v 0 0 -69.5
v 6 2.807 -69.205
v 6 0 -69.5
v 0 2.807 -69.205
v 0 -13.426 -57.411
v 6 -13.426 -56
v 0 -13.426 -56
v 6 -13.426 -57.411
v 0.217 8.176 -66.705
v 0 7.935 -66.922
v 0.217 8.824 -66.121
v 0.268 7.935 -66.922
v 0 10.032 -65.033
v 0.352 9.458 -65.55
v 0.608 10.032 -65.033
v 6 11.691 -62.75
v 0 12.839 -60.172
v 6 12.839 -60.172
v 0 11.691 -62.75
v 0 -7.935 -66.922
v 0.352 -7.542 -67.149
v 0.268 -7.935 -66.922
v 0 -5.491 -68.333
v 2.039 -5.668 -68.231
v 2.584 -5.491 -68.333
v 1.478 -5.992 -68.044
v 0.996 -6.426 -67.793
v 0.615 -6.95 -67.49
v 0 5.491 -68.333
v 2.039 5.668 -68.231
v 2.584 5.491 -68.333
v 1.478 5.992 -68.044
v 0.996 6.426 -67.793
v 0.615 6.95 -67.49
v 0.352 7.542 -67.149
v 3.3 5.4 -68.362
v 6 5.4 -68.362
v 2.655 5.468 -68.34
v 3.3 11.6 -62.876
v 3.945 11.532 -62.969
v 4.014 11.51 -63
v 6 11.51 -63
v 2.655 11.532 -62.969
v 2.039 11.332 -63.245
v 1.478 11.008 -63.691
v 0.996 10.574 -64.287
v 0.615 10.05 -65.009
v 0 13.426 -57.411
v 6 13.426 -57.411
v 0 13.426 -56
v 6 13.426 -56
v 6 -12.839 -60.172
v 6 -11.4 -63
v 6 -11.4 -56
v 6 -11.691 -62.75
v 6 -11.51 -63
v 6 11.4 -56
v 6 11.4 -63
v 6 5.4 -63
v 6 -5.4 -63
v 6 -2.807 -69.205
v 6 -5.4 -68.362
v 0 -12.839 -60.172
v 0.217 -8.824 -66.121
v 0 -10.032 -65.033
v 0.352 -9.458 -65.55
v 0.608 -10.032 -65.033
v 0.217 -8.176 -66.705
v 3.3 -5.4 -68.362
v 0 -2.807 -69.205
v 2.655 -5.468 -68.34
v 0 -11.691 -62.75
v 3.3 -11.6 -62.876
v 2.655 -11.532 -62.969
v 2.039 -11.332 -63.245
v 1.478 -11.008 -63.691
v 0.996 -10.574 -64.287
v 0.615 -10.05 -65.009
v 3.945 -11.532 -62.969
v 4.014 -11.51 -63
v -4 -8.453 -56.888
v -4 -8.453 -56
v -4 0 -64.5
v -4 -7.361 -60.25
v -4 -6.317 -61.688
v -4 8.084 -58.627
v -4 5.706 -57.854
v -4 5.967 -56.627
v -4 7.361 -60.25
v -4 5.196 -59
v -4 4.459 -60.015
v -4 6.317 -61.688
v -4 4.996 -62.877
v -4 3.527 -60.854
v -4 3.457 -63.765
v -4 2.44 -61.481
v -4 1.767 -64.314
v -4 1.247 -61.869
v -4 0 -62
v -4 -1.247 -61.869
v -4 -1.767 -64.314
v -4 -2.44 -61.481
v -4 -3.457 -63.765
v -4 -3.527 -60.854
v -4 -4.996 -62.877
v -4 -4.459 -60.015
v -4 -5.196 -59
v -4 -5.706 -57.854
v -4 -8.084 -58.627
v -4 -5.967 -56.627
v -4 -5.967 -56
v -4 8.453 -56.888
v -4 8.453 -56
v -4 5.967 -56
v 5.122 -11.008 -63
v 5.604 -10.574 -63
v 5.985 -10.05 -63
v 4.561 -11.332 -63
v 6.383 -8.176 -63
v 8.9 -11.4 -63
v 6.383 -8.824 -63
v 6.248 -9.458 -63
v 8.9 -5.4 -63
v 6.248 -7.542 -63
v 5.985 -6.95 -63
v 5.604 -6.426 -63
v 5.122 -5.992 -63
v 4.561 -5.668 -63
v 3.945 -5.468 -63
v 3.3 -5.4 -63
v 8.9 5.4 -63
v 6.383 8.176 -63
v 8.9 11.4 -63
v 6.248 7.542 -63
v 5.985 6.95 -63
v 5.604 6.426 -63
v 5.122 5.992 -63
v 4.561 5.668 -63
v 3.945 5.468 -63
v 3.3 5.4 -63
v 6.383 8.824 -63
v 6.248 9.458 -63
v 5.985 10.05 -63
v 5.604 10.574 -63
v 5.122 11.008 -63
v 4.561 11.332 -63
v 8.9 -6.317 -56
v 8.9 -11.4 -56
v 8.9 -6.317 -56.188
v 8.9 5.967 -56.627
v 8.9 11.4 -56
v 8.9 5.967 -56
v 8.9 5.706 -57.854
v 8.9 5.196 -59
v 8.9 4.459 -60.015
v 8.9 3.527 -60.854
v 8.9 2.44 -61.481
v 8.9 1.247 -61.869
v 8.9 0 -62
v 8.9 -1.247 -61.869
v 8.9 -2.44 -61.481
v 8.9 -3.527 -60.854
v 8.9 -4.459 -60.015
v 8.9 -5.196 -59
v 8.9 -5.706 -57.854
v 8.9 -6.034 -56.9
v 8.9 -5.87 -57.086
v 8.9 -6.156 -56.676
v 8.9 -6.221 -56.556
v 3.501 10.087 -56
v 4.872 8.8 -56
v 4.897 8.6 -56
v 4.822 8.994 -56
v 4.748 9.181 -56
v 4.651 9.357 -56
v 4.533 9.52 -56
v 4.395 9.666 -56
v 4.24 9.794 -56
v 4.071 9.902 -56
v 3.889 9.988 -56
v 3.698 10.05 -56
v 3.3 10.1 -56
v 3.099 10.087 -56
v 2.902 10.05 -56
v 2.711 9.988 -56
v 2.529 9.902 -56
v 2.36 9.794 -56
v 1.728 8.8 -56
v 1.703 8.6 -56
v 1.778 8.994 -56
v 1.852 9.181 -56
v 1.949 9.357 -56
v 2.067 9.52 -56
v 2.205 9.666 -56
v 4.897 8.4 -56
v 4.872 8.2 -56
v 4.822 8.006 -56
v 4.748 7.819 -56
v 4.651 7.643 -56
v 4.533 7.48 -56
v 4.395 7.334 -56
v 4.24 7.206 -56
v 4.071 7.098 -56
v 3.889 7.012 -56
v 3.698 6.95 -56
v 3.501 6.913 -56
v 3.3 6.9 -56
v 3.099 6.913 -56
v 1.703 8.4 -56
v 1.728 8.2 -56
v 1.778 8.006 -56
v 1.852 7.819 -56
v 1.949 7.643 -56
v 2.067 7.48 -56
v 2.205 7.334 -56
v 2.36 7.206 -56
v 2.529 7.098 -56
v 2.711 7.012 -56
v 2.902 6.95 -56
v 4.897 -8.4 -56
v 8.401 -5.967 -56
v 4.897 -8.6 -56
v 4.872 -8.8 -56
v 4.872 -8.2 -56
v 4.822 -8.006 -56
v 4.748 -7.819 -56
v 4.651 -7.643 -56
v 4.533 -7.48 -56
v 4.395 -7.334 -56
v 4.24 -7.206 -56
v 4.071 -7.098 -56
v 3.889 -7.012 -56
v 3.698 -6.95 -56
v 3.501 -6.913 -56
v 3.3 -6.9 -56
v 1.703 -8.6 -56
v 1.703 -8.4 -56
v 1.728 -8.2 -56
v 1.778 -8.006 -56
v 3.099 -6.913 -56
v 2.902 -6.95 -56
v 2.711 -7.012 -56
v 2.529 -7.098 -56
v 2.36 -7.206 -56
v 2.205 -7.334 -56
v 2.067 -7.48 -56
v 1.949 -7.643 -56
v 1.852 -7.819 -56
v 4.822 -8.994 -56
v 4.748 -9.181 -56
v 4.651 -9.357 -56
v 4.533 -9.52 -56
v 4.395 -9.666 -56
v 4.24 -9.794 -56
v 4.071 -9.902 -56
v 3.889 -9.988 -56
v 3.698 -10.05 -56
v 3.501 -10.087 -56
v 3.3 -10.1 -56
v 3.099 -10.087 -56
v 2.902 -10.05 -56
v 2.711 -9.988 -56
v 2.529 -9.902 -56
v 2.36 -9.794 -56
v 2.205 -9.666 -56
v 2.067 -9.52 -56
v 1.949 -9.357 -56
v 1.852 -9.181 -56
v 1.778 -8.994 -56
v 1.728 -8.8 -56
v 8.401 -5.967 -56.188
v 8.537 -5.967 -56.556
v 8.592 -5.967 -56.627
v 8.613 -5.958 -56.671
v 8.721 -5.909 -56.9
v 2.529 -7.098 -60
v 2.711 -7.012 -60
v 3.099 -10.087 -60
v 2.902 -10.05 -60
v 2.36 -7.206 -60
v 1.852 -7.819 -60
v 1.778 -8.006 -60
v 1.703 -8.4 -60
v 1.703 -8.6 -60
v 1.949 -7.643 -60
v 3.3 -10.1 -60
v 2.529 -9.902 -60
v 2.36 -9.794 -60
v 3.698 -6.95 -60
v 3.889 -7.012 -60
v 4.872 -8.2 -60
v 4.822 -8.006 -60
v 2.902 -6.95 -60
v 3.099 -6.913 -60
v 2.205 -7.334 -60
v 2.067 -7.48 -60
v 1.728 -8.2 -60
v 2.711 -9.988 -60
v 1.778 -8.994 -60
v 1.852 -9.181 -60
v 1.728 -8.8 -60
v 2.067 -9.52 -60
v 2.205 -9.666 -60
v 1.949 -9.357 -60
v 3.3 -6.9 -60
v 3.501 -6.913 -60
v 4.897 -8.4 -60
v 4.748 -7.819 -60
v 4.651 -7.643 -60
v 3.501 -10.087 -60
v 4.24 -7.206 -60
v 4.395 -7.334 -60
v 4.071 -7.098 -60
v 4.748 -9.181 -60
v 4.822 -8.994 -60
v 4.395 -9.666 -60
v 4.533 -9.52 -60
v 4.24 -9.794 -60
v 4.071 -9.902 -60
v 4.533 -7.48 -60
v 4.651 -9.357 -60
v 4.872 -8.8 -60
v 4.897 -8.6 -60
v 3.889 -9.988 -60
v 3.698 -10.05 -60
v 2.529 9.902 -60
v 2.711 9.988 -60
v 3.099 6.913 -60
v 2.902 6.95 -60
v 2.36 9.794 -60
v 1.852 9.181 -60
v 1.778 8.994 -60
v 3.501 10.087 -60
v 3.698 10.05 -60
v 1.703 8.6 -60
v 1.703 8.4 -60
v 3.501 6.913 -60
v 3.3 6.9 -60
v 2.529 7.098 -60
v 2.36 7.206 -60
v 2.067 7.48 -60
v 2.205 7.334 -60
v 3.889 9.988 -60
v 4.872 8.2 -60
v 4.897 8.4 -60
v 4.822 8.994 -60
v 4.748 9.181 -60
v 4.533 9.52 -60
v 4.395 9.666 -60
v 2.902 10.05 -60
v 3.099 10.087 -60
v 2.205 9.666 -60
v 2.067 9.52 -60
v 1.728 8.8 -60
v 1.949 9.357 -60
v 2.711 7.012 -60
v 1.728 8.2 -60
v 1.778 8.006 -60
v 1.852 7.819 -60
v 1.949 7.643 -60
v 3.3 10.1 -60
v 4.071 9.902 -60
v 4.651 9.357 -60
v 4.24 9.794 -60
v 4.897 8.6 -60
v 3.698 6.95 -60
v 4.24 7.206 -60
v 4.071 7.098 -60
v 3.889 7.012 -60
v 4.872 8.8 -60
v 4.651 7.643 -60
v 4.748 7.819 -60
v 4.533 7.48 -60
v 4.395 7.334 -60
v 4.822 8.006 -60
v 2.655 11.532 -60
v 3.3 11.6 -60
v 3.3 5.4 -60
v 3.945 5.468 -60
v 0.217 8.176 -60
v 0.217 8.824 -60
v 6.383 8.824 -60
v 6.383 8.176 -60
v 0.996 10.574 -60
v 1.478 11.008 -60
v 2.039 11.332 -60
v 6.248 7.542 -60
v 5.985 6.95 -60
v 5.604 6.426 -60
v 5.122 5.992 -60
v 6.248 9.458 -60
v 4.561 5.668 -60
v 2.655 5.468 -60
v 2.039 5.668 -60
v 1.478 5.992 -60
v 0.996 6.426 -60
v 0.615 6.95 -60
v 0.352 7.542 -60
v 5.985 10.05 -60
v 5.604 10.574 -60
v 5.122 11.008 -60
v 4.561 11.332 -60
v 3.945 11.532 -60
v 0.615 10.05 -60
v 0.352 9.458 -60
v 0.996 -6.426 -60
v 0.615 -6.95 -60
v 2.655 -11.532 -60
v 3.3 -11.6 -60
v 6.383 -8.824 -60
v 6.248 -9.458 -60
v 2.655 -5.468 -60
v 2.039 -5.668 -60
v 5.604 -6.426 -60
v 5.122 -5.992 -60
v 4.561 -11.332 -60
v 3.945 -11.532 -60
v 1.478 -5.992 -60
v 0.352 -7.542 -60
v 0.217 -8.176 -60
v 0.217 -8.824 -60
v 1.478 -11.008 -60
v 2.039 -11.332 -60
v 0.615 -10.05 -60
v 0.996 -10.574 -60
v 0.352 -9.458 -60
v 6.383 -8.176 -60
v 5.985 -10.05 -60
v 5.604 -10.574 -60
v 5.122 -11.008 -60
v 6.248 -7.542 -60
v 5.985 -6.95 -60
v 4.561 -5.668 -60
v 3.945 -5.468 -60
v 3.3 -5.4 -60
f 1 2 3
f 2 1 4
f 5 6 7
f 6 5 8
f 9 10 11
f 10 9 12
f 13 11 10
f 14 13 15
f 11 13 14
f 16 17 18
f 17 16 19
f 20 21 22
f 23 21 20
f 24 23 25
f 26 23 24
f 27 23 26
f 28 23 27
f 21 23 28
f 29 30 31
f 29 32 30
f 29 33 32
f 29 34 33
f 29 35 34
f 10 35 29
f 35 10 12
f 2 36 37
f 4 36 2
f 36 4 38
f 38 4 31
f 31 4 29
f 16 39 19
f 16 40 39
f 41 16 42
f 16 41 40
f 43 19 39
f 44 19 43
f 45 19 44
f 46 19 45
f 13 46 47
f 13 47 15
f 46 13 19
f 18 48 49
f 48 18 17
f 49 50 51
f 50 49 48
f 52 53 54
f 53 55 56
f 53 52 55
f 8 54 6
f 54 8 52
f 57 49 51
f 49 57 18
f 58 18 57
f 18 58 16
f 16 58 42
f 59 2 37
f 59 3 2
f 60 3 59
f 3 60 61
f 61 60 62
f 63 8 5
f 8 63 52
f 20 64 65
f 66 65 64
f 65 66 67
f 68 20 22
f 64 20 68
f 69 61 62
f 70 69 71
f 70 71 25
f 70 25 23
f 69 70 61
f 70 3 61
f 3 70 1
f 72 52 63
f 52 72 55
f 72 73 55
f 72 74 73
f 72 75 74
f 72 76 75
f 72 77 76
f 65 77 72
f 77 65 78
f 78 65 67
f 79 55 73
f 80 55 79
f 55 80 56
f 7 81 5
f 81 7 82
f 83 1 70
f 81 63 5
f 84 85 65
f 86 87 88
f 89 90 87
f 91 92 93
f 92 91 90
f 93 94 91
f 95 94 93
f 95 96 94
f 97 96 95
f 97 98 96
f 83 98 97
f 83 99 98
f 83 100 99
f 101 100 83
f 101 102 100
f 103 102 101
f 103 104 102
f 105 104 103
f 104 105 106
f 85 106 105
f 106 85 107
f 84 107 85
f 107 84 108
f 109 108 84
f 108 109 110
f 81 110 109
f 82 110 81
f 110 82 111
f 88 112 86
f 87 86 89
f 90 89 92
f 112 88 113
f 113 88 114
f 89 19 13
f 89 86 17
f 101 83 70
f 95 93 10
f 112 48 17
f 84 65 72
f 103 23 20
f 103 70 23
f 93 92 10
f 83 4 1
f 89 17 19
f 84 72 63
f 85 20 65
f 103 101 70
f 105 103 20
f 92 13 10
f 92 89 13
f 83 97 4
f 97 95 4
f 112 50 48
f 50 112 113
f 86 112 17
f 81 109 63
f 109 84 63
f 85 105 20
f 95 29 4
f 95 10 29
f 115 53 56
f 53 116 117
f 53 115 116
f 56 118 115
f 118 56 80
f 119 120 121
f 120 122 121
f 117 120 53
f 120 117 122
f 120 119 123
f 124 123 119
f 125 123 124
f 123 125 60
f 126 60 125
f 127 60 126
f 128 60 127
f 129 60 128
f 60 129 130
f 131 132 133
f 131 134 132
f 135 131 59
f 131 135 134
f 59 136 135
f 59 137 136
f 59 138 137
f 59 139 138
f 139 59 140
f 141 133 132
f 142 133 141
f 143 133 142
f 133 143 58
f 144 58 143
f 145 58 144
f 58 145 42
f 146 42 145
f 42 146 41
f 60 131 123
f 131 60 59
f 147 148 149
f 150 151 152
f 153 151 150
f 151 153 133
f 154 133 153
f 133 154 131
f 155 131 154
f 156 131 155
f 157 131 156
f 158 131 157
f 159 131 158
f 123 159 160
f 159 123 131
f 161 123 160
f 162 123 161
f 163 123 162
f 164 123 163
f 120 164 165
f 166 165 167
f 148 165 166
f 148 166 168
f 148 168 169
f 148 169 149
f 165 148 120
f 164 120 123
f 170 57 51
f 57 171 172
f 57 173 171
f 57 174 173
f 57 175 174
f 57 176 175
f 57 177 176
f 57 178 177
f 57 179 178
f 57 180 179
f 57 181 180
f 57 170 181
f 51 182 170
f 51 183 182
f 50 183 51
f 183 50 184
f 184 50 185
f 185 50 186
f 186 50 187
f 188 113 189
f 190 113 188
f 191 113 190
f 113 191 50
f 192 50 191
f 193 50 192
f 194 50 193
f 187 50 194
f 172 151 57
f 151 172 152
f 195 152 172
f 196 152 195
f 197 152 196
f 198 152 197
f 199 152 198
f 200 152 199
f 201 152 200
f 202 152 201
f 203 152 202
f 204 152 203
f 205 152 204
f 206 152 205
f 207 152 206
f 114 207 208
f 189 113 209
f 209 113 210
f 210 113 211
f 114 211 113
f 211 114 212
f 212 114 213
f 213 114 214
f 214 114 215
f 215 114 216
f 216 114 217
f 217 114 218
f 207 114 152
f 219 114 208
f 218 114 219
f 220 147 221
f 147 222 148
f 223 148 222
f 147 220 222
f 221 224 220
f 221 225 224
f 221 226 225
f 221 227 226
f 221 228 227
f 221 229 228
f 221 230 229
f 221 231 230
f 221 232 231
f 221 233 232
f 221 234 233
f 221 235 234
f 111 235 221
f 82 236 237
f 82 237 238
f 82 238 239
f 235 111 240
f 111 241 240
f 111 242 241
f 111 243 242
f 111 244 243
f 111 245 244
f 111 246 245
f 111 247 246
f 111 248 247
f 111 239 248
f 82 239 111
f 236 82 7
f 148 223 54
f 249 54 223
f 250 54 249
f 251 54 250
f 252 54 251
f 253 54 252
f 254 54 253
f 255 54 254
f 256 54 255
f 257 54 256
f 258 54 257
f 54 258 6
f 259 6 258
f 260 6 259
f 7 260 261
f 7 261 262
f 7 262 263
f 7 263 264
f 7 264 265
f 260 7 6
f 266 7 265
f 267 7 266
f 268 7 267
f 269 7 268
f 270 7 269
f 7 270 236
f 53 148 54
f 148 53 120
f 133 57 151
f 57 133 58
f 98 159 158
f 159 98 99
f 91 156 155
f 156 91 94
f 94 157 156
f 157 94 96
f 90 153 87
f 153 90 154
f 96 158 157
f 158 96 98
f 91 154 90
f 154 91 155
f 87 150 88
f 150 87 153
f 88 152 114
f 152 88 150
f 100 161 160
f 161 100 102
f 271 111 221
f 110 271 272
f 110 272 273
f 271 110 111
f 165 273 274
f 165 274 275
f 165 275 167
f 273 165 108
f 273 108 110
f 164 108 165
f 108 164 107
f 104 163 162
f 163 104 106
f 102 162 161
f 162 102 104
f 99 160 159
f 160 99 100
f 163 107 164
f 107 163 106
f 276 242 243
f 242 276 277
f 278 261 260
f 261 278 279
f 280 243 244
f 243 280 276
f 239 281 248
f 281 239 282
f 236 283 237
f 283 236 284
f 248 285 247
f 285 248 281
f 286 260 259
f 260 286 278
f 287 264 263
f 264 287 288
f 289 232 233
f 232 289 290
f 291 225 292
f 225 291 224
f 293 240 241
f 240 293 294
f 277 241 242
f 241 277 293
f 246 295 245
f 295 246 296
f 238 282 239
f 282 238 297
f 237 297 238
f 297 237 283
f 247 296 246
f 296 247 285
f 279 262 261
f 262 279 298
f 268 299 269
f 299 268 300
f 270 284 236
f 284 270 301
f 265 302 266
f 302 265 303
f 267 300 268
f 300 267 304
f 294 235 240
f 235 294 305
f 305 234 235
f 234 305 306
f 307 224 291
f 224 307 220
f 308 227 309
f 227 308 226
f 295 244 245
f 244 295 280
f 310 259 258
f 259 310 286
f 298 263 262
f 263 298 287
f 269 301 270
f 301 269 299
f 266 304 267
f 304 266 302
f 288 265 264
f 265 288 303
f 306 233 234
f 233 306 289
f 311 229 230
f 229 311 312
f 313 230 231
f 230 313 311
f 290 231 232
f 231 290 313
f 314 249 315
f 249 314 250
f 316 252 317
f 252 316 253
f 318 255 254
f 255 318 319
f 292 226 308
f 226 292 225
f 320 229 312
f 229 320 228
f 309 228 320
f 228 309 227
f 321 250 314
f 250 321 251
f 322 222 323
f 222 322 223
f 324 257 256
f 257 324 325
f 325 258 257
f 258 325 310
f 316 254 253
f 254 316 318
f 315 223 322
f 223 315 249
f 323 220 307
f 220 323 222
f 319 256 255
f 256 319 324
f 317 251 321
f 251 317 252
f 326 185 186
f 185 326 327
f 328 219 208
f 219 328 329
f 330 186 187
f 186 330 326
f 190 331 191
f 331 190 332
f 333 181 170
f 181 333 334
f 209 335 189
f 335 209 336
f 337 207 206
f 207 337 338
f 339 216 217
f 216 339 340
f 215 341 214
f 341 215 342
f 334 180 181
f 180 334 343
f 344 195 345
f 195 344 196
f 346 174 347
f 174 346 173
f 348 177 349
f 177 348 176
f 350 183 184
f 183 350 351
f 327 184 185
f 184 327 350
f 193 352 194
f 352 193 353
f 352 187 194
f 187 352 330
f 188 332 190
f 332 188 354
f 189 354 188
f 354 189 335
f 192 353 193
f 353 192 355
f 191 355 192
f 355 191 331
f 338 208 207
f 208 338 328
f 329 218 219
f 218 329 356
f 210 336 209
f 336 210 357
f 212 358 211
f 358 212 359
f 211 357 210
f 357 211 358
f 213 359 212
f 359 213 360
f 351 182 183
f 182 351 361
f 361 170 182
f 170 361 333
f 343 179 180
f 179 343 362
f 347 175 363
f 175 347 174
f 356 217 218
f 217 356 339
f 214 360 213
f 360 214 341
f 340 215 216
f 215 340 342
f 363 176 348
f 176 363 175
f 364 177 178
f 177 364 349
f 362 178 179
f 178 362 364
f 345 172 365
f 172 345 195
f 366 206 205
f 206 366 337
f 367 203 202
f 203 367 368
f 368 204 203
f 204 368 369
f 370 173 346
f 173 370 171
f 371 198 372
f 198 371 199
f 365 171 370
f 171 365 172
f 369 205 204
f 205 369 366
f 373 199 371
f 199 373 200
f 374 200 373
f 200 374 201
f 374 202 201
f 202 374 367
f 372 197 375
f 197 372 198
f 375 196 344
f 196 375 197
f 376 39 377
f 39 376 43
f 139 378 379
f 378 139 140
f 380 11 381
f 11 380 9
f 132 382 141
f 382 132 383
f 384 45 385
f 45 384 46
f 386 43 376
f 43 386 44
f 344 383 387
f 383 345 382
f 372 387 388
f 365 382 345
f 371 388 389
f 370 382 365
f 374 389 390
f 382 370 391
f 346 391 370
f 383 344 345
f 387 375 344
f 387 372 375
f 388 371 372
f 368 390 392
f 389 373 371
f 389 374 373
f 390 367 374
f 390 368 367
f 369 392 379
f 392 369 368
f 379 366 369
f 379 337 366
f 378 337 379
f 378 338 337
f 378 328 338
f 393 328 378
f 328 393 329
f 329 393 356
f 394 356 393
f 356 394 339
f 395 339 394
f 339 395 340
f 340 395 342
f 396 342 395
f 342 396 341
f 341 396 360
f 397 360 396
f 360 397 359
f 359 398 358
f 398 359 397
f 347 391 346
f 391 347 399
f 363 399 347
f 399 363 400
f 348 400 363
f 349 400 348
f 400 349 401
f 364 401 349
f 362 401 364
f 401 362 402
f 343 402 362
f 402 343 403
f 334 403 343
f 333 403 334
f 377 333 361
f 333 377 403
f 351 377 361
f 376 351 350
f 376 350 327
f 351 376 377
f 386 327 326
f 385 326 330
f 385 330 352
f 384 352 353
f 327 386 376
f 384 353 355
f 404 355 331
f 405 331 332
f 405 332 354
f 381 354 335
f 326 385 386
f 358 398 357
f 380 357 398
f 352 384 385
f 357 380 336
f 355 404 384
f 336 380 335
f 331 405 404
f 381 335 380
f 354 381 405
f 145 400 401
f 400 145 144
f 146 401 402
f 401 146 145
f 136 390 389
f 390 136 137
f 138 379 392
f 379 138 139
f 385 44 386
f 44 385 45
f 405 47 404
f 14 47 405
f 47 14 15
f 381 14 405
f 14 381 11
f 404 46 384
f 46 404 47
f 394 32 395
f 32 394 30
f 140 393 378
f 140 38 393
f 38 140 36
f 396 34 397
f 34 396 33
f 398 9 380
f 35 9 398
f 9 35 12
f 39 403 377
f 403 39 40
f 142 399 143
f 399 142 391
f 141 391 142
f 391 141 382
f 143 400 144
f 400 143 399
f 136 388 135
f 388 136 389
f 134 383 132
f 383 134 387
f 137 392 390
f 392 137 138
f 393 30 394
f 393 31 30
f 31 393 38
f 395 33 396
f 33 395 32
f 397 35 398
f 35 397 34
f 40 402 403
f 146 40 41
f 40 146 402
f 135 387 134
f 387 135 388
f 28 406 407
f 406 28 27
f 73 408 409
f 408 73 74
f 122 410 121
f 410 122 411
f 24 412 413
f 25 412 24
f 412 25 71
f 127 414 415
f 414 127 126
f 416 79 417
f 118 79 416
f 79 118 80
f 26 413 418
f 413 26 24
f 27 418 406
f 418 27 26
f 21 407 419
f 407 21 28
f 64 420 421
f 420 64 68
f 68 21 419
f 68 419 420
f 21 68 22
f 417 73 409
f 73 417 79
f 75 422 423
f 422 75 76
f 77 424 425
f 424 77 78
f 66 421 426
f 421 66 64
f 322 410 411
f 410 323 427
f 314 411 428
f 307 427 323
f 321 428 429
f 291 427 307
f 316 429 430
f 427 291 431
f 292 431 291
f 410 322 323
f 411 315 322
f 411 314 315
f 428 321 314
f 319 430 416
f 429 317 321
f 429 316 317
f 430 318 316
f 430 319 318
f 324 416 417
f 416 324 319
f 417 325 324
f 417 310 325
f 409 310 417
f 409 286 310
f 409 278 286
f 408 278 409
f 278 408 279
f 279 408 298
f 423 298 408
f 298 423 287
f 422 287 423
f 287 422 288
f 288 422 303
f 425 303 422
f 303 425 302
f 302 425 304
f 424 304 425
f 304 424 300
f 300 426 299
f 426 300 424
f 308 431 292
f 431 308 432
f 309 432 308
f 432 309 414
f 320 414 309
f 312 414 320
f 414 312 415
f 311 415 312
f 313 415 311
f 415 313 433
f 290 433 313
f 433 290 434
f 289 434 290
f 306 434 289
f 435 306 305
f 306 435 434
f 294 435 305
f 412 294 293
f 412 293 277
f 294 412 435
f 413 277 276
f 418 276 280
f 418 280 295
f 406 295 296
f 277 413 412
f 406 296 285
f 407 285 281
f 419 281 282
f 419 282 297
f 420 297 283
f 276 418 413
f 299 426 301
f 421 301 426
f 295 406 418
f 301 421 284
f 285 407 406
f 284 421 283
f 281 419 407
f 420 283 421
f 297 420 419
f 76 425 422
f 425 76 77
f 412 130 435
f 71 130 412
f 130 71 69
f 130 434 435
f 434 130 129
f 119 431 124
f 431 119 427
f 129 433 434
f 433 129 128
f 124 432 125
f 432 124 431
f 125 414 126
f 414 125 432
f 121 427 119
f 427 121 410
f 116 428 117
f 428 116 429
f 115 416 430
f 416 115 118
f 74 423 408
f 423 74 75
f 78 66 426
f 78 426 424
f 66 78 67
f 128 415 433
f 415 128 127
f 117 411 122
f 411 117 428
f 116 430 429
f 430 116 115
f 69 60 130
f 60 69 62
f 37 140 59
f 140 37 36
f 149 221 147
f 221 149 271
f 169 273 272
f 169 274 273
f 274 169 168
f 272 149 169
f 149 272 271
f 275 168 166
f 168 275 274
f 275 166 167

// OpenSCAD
// PRUSA iteration4
// Extruder cable clip
// GNU GPL v3
// Josef Průša <iam@josefprusa.cz> and contributors
// http://www.reprap.org/wiki/Prusa_Mendel
// http://prusamendel.org

module extruder_cable_clip()
{
        
    difference(){
    difference()
    {
        union()
        {
            // body shape
            translate([-6,28,28]) rotate([0,90,0]) cylinder(h=6,r=13.5,$fn=30);  
            translate([-10,28,28]) rotate([0,90,0]) cylinder(h=4,r1=8.5,r2=13.5, $fn=30);  
            translate([0,16.6,28]) cube([2.9,22.8,7]); 
        }
        
        // bottom cut and shape
        translate([-15,7,13]) cube([30,40,15]); 
        translate([-20,28,28]) rotate([0,90,0]) cylinder(h=40,r=6, $fn=30);
        
        // screws
        translate([-2.7,19.5,25]) rotate([0,0,90]) cylinder(h= 10, r = 1.6, $fn=50); 
        translate([-2.7,36.5,25]) rotate([0,0,90]) cylinder( h = 10, r = 1.6, $fn=50); 
        translate([-2.7,36.5,32]) rotate([0,0,90]) cylinder( h = 13, r = 3.1, $fn=30);
        translate([-2.7,19.5,32]) rotate([0,0,90]) cylinder( h = 13, r = 3.1, $fn=30); 
        
        // screw heads opening
        translate([-2.7,16.4,35]) cube([10,6.2,15]); 
        translate([-2.7,33.4,35]) cube([10,6.2,15]); 
        
        
    }
    
    difference()
    {
        // cable grip
        translate([-8,28,28]) rotate([0,90,0]) cylinder( h = 10, r = 6, $fn=30);
        translate([-20,28,28]) rotate([0,90,0]) cylinder( h = 40, r = 5.5, $fn=30);
        translate([-15,7,13]) cube([30,40,15]); 
        translate([-6,7,13]) cube([2,40,25]); 
        translate([-2,7,13]) cube([2,40,25]); 
        
    }
    
    
    //nylon hole
        
        translate([-3,28,28]) rotate([35,90,0]) cylinder( h = 24,r = 1.8,$fn=30);}}


//translate([0,0,0]) extruder_cable_clip();

translate([6,-28,-28]) mirror([0, 0, 1]) extruder_cable_clip();
